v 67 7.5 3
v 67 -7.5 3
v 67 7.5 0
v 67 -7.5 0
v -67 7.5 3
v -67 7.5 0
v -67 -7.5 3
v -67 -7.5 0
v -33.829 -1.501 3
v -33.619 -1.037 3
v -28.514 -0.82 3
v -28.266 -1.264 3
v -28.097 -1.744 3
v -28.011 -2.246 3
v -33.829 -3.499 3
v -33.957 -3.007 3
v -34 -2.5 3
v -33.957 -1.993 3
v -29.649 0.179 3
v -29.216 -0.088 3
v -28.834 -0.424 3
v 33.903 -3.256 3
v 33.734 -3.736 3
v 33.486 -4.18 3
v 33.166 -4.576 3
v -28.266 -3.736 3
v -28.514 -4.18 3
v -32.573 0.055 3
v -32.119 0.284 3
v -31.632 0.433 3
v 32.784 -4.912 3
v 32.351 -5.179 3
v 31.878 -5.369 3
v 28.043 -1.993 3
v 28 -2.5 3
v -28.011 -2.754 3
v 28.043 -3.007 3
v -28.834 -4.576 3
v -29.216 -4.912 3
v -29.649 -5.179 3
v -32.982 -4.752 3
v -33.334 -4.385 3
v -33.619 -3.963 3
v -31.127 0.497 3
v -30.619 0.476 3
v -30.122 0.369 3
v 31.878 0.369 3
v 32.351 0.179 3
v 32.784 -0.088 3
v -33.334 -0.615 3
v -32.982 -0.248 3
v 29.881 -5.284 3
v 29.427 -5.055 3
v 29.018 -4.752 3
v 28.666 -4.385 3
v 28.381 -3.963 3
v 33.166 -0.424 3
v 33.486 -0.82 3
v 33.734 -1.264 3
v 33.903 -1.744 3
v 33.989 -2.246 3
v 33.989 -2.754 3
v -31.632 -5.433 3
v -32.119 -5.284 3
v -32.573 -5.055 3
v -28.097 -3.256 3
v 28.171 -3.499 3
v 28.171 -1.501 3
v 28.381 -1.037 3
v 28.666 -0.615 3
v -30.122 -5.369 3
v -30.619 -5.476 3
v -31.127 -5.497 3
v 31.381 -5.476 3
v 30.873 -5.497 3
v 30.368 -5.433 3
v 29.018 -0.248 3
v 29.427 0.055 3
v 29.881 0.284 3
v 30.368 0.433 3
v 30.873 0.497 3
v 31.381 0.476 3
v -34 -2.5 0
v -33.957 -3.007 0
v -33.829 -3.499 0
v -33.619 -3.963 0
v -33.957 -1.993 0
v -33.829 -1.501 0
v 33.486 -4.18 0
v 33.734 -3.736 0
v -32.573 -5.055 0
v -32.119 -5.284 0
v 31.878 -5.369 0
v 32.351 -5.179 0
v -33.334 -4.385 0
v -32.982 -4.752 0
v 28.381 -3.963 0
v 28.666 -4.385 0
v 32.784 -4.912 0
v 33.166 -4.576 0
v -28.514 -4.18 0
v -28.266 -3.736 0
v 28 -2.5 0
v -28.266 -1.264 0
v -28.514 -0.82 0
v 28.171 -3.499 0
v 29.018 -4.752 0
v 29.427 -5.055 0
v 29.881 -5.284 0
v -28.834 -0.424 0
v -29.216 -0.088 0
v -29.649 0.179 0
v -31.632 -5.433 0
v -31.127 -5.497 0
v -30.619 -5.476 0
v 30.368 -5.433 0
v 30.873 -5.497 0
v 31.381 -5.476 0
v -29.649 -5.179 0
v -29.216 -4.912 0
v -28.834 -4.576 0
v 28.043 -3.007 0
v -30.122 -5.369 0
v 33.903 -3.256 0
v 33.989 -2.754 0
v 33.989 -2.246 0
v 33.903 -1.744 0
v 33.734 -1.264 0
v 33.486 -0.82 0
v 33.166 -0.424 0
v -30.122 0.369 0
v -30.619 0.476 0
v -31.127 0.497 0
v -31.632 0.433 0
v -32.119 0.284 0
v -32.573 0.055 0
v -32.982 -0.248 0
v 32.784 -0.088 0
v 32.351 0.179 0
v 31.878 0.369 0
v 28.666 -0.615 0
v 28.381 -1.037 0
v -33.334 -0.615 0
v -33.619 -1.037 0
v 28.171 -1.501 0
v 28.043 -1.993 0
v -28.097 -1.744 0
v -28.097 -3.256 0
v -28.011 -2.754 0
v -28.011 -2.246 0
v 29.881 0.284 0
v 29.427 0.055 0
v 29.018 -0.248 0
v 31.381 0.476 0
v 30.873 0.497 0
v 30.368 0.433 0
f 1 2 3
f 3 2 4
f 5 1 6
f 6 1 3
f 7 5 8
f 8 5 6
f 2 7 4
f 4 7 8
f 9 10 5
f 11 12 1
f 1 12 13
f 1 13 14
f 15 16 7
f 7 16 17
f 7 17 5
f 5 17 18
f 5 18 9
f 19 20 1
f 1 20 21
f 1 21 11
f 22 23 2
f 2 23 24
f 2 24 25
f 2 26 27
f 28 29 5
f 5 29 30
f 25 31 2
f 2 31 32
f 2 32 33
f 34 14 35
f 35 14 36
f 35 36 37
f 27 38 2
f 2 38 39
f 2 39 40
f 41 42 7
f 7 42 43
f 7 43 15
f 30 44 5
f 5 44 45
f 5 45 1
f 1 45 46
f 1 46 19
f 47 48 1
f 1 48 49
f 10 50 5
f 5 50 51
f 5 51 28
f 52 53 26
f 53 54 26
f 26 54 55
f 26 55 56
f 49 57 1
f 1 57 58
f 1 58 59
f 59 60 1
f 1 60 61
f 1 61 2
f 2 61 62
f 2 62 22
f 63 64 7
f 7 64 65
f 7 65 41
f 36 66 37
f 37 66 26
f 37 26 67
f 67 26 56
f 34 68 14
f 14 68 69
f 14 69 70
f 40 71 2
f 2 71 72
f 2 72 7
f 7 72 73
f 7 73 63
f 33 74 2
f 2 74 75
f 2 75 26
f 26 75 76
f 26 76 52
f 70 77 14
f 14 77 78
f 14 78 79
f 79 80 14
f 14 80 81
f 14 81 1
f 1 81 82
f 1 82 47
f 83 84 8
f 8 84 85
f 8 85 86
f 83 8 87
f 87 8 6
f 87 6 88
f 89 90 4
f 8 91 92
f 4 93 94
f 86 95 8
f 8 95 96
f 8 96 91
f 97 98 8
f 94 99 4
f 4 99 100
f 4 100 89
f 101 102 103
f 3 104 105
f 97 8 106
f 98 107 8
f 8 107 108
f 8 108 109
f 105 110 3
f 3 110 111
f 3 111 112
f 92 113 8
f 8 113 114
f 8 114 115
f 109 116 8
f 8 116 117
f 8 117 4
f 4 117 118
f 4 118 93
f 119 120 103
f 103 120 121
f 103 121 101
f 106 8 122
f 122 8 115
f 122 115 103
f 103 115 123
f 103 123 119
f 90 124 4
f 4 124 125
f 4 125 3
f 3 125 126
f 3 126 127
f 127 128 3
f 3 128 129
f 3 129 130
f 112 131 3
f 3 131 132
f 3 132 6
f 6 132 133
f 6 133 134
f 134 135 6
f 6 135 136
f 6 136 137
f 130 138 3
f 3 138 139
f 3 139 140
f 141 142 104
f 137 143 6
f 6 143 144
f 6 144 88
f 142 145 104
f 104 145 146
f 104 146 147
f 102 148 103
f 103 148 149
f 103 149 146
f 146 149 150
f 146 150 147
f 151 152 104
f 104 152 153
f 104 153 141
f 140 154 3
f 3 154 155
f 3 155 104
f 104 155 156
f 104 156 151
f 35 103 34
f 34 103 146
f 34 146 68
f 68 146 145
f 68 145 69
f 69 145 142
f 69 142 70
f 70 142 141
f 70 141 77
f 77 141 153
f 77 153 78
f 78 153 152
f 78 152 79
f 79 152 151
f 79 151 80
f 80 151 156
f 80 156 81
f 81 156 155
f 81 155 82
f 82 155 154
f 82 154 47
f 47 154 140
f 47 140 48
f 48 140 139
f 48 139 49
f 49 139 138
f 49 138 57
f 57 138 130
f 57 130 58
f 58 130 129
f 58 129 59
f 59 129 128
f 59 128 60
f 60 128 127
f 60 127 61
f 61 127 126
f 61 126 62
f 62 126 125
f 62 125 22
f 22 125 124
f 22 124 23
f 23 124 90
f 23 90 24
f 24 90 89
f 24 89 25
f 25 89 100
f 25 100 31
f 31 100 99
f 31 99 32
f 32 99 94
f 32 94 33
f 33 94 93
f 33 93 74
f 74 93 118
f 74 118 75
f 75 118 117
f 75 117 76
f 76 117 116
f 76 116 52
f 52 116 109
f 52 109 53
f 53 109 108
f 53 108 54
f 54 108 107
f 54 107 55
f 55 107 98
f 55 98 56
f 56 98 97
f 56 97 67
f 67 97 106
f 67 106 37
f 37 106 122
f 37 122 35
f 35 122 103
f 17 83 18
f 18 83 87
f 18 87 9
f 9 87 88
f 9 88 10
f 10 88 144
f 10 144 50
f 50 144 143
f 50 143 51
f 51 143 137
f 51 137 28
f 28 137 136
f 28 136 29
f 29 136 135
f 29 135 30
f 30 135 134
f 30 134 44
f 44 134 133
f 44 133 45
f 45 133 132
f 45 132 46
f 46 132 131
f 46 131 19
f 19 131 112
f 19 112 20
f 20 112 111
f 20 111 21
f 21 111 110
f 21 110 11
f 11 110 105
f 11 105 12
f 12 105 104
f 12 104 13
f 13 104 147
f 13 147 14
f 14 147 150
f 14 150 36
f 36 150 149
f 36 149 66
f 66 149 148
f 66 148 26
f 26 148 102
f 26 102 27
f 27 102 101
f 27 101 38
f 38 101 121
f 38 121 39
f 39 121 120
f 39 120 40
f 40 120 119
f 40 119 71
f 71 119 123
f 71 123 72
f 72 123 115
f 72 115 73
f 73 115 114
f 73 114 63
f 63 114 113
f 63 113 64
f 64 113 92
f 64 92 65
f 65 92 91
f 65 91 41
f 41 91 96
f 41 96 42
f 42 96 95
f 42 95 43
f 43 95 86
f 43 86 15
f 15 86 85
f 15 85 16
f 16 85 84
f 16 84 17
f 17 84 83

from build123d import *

# Parameters (mm, degrees)
SKETCH1_W           = 134
SKETCH1_H           = 15
BOSS_EXTRUDE1_DEPTH = 3
SKETCH4_R           = 3
CUT_EXTRUDE1_DEPTH  = 3
SKETCH2_R           = 3
CUT_EXTRUDE2_DEPTH  = 3


with BuildPart() as part:
    # Sketch1 → Boss-Extrude1 (new body)
    with BuildSketch(Plane.XY):
        Rectangle(SKETCH1_W, SKETCH1_H)
    extrude(amount=BOSS_EXTRUDE1_DEPTH)

    # Sketch4 → Cut-Extrude1 (cut)
    with BuildSketch(Plane(origin=(0, 0, 0), x_dir=(-1, 0, 0), z_dir=(0, 0, -1))):
        with Locations((-31, -2.5)):
            Circle(SKETCH4_R)
    extrude(amount=-CUT_EXTRUDE1_DEPTH, mode=Mode.SUBTRACT)

    # Sketch2 → Cut-Extrude2 (cut)
    with BuildSketch(Plane(origin=(0, 0, 0), x_dir=(-1, 0, 0), z_dir=(0, 0, -1))):
        with Locations((31, -2.5)):
            Circle(SKETCH2_R)
    extrude(amount=-CUT_EXTRUDE2_DEPTH, mode=Mode.SUBTRACT)


solid = part.part
